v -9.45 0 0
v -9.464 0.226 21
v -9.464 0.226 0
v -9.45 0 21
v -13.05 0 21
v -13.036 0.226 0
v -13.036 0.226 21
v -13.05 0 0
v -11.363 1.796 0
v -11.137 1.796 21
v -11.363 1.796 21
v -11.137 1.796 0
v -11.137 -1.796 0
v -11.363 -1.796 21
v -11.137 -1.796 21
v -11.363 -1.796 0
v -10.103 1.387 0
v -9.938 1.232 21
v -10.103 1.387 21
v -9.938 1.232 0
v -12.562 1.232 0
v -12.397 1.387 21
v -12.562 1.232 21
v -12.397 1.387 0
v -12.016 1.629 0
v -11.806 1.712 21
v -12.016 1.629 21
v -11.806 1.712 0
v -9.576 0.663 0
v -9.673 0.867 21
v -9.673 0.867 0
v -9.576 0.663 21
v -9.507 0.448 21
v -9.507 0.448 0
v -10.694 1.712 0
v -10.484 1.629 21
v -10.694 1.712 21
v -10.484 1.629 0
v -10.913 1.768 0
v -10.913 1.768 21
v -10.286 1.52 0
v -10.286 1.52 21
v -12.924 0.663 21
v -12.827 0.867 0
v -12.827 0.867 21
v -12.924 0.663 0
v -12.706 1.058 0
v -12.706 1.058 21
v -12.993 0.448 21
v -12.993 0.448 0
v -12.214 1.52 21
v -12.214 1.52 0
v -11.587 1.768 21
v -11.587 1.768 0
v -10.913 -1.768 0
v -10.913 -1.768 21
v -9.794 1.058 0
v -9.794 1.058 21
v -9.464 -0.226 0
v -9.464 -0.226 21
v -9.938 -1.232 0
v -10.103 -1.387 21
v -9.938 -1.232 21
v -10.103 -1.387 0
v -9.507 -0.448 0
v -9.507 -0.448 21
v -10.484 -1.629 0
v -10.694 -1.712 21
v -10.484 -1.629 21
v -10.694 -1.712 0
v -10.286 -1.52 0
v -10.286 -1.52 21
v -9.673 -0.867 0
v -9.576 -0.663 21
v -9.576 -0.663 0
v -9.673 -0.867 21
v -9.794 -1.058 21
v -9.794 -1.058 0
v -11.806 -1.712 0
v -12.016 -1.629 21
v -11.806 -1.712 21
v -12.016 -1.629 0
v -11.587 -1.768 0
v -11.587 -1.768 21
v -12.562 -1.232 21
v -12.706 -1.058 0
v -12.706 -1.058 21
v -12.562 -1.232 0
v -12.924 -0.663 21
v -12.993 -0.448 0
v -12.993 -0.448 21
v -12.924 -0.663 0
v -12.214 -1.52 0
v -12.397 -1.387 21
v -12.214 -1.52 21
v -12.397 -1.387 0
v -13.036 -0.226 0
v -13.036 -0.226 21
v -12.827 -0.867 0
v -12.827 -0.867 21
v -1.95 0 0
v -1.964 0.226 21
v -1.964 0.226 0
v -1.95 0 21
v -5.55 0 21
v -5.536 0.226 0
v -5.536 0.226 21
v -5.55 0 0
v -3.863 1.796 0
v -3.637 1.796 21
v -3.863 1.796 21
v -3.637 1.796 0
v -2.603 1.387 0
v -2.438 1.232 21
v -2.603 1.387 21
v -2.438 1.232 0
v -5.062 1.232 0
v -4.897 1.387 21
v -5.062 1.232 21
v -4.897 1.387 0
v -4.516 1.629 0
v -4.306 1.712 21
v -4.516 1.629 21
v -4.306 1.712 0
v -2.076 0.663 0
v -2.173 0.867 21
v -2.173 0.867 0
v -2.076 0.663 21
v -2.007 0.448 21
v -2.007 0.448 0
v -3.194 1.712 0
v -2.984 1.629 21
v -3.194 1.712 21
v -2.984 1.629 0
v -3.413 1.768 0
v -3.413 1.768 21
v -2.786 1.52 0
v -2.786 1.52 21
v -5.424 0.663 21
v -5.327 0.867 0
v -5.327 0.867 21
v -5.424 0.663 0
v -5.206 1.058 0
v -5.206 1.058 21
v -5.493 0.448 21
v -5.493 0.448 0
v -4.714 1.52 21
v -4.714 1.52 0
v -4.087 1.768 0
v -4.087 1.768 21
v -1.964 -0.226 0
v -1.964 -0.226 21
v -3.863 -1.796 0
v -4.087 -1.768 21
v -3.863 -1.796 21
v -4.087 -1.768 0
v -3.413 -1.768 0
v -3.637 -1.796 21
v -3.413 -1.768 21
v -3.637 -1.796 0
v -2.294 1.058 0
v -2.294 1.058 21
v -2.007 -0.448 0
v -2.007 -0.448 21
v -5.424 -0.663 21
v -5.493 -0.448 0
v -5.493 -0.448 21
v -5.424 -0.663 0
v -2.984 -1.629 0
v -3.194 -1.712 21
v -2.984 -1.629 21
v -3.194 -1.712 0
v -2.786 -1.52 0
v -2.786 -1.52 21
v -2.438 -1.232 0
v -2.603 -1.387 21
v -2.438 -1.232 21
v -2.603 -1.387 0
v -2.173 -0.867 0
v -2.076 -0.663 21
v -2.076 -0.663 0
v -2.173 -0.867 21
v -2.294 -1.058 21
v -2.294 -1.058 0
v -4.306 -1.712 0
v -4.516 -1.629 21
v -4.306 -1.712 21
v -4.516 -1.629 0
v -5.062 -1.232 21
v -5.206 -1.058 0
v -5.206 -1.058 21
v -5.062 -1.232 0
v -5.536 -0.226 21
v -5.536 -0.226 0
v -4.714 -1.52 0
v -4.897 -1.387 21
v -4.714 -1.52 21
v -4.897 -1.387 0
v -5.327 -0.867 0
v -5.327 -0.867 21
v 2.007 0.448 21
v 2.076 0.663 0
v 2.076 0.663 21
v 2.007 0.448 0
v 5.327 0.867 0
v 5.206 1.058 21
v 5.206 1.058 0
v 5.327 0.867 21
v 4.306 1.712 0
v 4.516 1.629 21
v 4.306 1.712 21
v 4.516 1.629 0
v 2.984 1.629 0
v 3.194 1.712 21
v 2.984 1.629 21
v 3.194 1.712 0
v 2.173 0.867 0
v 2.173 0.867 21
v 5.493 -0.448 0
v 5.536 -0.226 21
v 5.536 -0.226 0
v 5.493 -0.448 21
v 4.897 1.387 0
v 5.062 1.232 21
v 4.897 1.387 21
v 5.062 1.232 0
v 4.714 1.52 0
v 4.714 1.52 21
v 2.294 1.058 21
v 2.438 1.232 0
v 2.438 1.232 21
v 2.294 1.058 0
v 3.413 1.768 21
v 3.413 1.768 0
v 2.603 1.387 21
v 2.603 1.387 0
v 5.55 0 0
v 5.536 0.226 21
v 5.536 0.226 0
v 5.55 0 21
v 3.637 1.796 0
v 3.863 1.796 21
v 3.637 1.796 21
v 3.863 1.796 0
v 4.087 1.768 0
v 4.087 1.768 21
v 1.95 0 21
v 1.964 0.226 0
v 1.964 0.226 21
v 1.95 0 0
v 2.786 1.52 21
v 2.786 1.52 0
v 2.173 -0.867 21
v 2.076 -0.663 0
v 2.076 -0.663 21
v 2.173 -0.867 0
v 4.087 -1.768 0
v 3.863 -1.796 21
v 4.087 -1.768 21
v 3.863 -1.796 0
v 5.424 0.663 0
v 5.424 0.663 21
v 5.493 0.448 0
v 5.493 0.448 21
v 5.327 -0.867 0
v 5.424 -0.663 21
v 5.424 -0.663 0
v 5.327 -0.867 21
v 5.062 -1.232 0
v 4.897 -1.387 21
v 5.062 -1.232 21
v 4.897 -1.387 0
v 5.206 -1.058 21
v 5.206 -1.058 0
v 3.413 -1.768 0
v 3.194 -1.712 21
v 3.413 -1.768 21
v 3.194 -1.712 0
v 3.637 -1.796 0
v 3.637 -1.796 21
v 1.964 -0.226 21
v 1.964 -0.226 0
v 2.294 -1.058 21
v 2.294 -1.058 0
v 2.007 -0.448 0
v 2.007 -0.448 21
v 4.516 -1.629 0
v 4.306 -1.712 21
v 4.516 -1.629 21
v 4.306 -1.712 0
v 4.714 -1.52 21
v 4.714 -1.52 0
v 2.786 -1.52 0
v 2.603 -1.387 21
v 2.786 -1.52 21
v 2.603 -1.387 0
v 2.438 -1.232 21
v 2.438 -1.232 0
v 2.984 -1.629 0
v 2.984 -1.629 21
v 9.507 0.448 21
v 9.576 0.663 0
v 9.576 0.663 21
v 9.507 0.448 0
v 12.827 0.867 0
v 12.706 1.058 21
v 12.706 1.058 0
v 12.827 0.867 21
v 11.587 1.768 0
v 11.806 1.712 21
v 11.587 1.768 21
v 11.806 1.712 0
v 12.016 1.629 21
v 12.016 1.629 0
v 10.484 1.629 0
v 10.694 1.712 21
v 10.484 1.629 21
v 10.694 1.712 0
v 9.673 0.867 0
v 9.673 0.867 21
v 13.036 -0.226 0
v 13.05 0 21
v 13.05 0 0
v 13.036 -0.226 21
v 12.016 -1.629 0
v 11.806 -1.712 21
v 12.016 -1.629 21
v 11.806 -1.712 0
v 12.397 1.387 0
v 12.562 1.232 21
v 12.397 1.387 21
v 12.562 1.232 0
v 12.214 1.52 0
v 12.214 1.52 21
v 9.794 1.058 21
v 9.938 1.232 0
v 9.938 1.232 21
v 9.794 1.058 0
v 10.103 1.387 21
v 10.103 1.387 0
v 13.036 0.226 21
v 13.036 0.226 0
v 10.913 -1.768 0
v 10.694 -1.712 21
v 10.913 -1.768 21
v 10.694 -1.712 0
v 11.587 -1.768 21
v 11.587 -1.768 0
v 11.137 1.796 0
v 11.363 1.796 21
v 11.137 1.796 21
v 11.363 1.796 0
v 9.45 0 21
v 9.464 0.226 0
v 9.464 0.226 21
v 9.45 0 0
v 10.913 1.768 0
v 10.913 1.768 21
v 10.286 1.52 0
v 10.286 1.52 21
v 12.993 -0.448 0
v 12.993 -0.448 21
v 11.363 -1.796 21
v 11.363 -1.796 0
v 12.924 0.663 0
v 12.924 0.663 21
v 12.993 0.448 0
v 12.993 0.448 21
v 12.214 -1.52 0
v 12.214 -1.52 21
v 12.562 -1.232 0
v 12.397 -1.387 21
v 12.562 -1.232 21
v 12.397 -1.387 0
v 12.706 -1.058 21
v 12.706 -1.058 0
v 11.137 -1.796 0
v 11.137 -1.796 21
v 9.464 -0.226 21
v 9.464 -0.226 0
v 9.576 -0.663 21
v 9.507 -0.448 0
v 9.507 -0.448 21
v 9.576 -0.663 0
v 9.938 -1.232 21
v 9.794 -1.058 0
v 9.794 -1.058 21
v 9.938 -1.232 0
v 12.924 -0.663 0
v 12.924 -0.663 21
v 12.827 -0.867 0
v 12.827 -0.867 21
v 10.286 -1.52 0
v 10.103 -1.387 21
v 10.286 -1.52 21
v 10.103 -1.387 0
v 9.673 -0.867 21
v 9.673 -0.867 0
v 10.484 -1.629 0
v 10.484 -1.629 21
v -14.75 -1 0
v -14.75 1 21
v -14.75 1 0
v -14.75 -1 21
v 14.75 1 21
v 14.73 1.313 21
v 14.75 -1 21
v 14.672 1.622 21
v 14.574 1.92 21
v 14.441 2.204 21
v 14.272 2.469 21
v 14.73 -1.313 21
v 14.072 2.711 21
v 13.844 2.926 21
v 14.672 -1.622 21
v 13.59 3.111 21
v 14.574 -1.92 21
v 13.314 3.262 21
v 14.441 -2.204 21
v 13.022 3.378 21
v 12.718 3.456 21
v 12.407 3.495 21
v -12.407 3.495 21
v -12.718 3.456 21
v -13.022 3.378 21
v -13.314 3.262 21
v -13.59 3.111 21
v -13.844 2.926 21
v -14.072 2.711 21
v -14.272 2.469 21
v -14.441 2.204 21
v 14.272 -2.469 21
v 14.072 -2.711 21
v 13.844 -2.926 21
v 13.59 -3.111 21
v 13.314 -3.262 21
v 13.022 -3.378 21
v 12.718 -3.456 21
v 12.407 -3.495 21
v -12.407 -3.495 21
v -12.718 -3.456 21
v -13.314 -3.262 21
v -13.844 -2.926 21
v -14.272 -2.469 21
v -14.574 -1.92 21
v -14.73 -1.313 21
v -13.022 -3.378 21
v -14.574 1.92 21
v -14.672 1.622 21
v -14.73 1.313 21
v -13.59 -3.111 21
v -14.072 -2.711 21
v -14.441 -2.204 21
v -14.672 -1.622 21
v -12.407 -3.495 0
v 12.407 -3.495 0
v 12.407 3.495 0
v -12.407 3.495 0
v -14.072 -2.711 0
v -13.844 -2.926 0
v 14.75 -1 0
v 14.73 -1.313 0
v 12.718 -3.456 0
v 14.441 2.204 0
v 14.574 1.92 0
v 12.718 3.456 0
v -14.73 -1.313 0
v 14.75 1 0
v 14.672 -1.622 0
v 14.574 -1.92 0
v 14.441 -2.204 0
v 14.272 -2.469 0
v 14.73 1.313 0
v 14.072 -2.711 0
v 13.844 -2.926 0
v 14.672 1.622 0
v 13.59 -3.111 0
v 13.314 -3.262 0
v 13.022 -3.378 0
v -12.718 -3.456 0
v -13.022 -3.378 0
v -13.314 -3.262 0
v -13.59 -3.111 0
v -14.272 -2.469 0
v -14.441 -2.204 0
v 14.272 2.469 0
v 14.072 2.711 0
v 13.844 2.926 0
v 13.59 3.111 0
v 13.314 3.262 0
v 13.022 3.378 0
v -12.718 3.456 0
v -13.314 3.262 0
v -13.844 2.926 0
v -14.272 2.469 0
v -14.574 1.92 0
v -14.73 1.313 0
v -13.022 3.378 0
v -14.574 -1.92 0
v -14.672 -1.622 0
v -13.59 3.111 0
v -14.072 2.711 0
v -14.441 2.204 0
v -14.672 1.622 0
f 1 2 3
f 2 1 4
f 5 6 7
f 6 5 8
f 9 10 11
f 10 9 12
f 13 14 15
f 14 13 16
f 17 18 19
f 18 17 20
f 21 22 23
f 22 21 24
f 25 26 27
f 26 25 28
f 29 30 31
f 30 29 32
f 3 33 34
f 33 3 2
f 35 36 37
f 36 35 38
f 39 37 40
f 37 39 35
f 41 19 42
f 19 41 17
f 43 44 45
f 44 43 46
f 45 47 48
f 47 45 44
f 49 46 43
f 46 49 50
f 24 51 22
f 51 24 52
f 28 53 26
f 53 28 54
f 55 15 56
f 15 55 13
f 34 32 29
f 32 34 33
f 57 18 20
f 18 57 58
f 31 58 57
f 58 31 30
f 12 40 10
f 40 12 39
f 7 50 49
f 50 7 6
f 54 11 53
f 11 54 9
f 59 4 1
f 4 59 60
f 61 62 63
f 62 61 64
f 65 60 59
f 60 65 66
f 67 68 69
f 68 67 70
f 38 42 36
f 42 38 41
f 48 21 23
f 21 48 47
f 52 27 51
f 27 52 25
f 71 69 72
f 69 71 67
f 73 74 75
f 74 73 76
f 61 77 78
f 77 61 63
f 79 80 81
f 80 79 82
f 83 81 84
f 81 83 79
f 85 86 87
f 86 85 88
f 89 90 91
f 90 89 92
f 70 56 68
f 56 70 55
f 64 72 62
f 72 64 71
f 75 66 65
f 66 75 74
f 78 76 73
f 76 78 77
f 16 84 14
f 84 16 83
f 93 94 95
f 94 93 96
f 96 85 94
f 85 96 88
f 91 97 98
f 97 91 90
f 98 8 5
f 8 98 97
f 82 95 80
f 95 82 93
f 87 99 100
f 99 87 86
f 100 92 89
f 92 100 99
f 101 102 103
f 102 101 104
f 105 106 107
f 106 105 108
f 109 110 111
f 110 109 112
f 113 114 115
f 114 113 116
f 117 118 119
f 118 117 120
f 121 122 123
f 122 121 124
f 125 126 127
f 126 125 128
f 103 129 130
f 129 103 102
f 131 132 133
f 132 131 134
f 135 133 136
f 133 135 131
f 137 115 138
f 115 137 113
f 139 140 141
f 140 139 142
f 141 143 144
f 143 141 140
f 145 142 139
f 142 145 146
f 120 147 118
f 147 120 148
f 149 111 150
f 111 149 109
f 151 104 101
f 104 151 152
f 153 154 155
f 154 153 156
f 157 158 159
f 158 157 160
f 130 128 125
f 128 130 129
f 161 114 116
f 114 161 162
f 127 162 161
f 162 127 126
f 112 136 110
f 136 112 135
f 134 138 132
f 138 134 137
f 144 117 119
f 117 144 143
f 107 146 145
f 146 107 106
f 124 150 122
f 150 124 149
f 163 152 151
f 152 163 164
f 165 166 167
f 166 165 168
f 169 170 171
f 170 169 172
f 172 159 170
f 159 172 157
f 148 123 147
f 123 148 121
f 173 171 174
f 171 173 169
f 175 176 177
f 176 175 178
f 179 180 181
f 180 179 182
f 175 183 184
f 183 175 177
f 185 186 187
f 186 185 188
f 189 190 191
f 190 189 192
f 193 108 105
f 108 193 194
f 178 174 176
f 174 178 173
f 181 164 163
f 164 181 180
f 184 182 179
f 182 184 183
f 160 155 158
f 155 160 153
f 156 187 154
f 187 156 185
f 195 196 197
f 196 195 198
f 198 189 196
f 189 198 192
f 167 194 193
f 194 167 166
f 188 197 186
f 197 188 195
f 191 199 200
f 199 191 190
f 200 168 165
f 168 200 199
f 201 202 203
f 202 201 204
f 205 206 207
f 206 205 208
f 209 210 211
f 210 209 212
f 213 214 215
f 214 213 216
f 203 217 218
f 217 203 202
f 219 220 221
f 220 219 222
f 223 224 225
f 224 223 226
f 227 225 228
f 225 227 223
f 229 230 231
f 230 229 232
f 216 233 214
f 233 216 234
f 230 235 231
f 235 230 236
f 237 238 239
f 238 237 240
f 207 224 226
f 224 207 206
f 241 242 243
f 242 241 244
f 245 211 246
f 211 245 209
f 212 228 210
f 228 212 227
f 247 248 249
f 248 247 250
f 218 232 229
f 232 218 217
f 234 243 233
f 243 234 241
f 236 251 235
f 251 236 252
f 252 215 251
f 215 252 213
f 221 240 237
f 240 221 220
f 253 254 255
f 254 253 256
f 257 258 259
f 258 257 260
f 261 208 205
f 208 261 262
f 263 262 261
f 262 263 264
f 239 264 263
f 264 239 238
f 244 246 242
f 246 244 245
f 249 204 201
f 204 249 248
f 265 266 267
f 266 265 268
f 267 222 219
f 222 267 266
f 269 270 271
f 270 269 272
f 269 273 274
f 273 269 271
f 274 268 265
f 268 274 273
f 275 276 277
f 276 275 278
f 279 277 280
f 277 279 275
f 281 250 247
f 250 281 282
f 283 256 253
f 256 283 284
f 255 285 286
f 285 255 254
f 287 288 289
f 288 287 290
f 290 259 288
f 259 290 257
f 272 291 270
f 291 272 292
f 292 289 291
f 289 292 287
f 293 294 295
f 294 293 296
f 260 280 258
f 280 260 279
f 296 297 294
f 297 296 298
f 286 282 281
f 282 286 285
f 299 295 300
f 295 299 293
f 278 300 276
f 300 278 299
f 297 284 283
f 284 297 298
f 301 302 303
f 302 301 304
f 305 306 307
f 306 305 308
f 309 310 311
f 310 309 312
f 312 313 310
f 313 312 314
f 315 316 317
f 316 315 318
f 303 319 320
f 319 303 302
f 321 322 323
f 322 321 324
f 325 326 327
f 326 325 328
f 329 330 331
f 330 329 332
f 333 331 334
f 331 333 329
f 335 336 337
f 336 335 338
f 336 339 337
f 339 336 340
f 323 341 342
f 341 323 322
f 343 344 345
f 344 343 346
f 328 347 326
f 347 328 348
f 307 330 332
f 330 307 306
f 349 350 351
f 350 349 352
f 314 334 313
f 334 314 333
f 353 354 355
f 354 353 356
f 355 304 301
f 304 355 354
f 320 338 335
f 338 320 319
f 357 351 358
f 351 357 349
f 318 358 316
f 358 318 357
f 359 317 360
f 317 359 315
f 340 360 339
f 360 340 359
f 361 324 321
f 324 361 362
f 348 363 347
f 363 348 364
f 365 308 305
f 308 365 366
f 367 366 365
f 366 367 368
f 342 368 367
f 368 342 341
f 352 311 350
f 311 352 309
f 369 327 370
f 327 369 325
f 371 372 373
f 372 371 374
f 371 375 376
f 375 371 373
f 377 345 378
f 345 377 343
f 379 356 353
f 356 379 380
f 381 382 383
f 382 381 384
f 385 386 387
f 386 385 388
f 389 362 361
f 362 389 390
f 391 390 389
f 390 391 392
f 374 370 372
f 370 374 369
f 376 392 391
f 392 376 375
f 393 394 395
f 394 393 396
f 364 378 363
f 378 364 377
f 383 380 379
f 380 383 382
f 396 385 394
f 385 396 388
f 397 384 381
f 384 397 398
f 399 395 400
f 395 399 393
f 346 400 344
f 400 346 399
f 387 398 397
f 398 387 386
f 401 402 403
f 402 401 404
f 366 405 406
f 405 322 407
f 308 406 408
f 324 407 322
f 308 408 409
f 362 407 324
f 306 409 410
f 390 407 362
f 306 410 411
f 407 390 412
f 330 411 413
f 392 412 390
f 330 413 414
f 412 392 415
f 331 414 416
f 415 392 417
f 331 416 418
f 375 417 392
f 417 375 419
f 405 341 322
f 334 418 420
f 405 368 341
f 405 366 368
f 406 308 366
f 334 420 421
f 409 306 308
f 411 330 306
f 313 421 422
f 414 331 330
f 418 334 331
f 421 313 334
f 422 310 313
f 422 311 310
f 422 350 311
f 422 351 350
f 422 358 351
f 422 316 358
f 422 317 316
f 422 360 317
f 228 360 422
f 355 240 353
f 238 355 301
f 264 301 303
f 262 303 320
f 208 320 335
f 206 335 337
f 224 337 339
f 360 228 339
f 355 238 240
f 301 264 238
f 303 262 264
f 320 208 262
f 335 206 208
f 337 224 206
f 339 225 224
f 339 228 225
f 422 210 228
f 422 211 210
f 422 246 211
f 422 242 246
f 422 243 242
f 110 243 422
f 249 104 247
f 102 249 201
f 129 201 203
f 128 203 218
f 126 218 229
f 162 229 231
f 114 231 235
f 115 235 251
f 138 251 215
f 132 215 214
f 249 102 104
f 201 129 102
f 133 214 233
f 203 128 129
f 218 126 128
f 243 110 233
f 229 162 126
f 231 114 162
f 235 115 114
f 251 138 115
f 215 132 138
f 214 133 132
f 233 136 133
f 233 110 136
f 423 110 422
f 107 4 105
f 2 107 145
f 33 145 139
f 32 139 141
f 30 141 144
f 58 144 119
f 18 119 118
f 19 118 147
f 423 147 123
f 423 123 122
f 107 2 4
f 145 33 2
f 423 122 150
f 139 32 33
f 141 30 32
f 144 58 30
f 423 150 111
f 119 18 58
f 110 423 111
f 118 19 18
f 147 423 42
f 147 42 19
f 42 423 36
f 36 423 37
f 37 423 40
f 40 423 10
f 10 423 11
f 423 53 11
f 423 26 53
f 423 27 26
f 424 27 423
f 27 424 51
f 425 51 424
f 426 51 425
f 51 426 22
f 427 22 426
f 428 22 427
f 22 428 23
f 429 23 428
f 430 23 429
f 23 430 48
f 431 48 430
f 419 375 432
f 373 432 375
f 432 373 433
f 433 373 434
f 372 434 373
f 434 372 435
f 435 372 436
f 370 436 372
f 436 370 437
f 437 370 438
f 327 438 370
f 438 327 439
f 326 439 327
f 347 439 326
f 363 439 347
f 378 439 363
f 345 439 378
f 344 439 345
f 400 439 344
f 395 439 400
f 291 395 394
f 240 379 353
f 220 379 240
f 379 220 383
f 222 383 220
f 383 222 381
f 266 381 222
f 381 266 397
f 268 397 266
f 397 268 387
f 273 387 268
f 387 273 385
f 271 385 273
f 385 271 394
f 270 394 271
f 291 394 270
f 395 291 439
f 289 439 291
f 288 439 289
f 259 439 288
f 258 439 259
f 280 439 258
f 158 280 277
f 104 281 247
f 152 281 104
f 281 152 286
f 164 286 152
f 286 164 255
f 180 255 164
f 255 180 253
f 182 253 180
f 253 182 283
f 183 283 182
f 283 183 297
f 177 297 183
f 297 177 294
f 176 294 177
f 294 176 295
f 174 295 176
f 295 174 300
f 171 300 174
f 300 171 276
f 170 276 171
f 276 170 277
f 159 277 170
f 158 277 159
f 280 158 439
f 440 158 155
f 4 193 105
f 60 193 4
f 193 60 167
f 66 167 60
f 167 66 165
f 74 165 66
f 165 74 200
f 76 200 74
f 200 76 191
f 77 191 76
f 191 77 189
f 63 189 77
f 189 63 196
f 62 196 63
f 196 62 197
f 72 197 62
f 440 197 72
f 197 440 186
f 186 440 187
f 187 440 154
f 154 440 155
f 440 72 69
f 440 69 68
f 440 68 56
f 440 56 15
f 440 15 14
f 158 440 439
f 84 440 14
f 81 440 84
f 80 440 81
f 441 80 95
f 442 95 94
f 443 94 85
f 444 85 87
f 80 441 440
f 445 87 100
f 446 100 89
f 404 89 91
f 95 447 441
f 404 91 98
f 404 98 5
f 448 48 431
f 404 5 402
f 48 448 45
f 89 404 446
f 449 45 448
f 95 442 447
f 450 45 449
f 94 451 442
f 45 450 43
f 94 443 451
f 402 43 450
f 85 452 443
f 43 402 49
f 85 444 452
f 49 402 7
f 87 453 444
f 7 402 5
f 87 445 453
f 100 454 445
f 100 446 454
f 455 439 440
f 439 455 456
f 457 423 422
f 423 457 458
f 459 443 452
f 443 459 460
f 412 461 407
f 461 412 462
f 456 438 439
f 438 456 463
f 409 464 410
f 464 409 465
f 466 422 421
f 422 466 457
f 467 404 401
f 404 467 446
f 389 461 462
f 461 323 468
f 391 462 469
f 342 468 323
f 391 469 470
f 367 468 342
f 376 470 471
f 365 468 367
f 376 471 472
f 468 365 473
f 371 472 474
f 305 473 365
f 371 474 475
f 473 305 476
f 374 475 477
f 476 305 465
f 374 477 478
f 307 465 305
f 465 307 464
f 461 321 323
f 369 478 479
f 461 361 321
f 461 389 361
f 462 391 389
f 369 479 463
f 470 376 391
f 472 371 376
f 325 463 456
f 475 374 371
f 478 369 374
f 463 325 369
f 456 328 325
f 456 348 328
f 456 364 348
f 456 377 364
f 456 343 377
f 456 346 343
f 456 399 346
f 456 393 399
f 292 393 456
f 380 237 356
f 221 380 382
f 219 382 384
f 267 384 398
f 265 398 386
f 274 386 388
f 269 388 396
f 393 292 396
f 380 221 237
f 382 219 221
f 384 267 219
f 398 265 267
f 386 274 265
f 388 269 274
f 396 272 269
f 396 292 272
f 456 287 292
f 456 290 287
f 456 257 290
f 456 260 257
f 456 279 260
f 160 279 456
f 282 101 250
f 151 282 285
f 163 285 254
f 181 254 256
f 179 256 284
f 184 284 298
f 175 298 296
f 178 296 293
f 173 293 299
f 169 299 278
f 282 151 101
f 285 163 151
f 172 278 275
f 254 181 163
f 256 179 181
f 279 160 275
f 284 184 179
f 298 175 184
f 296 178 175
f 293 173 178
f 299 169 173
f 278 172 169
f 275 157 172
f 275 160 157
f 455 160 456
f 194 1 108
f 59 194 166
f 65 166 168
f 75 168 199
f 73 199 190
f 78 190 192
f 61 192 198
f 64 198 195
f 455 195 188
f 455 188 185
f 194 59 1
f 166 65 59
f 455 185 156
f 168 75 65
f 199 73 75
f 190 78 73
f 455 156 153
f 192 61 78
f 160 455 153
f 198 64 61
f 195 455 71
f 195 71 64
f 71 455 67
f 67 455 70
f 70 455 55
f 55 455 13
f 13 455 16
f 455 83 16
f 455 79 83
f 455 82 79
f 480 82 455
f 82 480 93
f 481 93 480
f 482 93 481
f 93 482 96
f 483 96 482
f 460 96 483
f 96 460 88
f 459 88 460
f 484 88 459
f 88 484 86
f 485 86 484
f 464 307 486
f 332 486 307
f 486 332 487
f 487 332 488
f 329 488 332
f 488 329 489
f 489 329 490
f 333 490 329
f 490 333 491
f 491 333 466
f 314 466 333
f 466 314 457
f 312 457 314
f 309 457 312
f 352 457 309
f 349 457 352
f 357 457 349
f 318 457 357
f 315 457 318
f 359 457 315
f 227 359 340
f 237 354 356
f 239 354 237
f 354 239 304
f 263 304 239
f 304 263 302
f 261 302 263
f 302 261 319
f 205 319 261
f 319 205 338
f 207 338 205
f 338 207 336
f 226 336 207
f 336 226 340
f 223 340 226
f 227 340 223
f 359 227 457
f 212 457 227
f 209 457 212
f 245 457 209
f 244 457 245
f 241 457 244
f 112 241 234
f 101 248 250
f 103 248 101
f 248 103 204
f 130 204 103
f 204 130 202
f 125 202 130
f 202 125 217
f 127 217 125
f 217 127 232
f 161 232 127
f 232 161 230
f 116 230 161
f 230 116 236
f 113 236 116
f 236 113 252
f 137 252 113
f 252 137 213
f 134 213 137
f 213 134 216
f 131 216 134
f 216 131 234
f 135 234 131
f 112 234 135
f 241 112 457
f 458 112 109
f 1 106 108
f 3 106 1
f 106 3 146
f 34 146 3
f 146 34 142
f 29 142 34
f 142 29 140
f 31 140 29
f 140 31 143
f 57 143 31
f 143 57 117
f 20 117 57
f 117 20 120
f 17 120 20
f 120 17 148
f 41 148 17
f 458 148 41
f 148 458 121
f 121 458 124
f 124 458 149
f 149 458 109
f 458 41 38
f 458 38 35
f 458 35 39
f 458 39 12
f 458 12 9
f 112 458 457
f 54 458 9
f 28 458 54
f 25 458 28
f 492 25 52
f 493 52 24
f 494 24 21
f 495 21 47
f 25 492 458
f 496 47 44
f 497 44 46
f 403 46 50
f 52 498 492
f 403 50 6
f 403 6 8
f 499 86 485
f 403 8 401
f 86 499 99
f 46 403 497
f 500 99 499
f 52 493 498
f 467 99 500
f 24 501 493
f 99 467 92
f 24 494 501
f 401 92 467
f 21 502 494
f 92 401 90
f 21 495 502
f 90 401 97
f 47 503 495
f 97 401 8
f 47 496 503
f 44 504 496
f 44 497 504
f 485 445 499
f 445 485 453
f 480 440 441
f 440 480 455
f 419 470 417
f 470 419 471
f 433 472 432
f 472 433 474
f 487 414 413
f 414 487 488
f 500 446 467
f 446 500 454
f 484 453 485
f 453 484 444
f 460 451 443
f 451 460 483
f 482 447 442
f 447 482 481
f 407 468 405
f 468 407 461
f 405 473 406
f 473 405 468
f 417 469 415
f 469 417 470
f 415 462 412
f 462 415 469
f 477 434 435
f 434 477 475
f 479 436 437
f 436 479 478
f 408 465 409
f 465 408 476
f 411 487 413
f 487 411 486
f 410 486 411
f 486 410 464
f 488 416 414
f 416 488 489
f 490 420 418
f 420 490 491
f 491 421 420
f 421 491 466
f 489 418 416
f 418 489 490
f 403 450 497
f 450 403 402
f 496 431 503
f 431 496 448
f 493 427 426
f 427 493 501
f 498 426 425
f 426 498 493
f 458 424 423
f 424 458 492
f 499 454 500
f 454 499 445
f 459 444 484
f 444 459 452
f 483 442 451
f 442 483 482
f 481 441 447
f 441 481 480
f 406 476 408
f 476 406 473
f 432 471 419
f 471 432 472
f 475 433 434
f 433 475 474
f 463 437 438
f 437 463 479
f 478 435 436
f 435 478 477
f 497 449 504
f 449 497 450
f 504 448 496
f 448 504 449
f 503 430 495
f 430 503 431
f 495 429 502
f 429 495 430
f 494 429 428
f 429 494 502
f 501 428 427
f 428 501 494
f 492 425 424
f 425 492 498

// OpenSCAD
$fn = 50;


difference() {
	union() {
		translate(v = [0, 0, 0]) {
			rotate(a = [0, 0, 0]) {
				hull() {
					translate(v = [-12.2500000000, 1.0000000000, 0]) {
						rotate(a = [0, 0, 0]) {
							translate(v = [0, 0, 0]) {
								rotate(a = [0, 0, 0]) {
									cylinder(h = 21, r = 2.5000000000);
								}
							}
						}
					}
					translate(v = [12.2500000000, 1.0000000000, 0]) {
						rotate(a = [0, 0, 0]) {
							translate(v = [0, 0, 0]) {
								rotate(a = [0, 0, 0]) {
									cylinder(h = 21, r = 2.5000000000);
								}
							}
						}
					}
					translate(v = [-12.2500000000, -1.0000000000, 0]) {
						rotate(a = [0, 0, 0]) {
							translate(v = [0, 0, 0]) {
								rotate(a = [0, 0, 0]) {
									cylinder(h = 21, r = 2.5000000000);
								}
							}
						}
					}
					translate(v = [12.2500000000, -1.0000000000, 0]) {
						rotate(a = [0, 0, 0]) {
							translate(v = [0, 0, 0]) {
								rotate(a = [0, 0, 0]) {
									cylinder(h = 21, r = 2.5000000000);
								}
							}
						}
					}
				}
			}
		}
	}
	union() {
		translate(v = [-11.2500000000, 0.0000000000, 0]) {
			rotate(a = [0, 0, 0]) {
				translate(v = [0, 0, -50]) {
					rotate(a = [0, 0, 0]) {
						cylinder(h = 100, r = 1.8000000000);
					}
				}
			}
		}
		translate(v = [-3.7500000000, 0.0000000000, 0]) {
			rotate(a = [0, 0, 0]) {
				translate(v = [0, 0, -50]) {
					rotate(a = [0, 0, 0]) {
						cylinder(h = 100, r = 1.8000000000);
					}
				}
			}
		}
		translate(v = [3.7500000000, 0.0000000000, 0]) {
			rotate(a = [0, 0, 0]) {
				translate(v = [0, 0, -50]) {
					rotate(a = [0, 0, 0]) {
						cylinder(h = 100, r = 1.8000000000);
					}
				}
			}
		}
		translate(v = [11.2500000000, 0.0000000000, 0]) {
			rotate(a = [0, 0, 0]) {
				translate(v = [0, 0, -50]) {
					rotate(a = [0, 0, 0]) {
						cylinder(h = 100, r = 1.8000000000);
					}
				}
			}
		}
	}
}
